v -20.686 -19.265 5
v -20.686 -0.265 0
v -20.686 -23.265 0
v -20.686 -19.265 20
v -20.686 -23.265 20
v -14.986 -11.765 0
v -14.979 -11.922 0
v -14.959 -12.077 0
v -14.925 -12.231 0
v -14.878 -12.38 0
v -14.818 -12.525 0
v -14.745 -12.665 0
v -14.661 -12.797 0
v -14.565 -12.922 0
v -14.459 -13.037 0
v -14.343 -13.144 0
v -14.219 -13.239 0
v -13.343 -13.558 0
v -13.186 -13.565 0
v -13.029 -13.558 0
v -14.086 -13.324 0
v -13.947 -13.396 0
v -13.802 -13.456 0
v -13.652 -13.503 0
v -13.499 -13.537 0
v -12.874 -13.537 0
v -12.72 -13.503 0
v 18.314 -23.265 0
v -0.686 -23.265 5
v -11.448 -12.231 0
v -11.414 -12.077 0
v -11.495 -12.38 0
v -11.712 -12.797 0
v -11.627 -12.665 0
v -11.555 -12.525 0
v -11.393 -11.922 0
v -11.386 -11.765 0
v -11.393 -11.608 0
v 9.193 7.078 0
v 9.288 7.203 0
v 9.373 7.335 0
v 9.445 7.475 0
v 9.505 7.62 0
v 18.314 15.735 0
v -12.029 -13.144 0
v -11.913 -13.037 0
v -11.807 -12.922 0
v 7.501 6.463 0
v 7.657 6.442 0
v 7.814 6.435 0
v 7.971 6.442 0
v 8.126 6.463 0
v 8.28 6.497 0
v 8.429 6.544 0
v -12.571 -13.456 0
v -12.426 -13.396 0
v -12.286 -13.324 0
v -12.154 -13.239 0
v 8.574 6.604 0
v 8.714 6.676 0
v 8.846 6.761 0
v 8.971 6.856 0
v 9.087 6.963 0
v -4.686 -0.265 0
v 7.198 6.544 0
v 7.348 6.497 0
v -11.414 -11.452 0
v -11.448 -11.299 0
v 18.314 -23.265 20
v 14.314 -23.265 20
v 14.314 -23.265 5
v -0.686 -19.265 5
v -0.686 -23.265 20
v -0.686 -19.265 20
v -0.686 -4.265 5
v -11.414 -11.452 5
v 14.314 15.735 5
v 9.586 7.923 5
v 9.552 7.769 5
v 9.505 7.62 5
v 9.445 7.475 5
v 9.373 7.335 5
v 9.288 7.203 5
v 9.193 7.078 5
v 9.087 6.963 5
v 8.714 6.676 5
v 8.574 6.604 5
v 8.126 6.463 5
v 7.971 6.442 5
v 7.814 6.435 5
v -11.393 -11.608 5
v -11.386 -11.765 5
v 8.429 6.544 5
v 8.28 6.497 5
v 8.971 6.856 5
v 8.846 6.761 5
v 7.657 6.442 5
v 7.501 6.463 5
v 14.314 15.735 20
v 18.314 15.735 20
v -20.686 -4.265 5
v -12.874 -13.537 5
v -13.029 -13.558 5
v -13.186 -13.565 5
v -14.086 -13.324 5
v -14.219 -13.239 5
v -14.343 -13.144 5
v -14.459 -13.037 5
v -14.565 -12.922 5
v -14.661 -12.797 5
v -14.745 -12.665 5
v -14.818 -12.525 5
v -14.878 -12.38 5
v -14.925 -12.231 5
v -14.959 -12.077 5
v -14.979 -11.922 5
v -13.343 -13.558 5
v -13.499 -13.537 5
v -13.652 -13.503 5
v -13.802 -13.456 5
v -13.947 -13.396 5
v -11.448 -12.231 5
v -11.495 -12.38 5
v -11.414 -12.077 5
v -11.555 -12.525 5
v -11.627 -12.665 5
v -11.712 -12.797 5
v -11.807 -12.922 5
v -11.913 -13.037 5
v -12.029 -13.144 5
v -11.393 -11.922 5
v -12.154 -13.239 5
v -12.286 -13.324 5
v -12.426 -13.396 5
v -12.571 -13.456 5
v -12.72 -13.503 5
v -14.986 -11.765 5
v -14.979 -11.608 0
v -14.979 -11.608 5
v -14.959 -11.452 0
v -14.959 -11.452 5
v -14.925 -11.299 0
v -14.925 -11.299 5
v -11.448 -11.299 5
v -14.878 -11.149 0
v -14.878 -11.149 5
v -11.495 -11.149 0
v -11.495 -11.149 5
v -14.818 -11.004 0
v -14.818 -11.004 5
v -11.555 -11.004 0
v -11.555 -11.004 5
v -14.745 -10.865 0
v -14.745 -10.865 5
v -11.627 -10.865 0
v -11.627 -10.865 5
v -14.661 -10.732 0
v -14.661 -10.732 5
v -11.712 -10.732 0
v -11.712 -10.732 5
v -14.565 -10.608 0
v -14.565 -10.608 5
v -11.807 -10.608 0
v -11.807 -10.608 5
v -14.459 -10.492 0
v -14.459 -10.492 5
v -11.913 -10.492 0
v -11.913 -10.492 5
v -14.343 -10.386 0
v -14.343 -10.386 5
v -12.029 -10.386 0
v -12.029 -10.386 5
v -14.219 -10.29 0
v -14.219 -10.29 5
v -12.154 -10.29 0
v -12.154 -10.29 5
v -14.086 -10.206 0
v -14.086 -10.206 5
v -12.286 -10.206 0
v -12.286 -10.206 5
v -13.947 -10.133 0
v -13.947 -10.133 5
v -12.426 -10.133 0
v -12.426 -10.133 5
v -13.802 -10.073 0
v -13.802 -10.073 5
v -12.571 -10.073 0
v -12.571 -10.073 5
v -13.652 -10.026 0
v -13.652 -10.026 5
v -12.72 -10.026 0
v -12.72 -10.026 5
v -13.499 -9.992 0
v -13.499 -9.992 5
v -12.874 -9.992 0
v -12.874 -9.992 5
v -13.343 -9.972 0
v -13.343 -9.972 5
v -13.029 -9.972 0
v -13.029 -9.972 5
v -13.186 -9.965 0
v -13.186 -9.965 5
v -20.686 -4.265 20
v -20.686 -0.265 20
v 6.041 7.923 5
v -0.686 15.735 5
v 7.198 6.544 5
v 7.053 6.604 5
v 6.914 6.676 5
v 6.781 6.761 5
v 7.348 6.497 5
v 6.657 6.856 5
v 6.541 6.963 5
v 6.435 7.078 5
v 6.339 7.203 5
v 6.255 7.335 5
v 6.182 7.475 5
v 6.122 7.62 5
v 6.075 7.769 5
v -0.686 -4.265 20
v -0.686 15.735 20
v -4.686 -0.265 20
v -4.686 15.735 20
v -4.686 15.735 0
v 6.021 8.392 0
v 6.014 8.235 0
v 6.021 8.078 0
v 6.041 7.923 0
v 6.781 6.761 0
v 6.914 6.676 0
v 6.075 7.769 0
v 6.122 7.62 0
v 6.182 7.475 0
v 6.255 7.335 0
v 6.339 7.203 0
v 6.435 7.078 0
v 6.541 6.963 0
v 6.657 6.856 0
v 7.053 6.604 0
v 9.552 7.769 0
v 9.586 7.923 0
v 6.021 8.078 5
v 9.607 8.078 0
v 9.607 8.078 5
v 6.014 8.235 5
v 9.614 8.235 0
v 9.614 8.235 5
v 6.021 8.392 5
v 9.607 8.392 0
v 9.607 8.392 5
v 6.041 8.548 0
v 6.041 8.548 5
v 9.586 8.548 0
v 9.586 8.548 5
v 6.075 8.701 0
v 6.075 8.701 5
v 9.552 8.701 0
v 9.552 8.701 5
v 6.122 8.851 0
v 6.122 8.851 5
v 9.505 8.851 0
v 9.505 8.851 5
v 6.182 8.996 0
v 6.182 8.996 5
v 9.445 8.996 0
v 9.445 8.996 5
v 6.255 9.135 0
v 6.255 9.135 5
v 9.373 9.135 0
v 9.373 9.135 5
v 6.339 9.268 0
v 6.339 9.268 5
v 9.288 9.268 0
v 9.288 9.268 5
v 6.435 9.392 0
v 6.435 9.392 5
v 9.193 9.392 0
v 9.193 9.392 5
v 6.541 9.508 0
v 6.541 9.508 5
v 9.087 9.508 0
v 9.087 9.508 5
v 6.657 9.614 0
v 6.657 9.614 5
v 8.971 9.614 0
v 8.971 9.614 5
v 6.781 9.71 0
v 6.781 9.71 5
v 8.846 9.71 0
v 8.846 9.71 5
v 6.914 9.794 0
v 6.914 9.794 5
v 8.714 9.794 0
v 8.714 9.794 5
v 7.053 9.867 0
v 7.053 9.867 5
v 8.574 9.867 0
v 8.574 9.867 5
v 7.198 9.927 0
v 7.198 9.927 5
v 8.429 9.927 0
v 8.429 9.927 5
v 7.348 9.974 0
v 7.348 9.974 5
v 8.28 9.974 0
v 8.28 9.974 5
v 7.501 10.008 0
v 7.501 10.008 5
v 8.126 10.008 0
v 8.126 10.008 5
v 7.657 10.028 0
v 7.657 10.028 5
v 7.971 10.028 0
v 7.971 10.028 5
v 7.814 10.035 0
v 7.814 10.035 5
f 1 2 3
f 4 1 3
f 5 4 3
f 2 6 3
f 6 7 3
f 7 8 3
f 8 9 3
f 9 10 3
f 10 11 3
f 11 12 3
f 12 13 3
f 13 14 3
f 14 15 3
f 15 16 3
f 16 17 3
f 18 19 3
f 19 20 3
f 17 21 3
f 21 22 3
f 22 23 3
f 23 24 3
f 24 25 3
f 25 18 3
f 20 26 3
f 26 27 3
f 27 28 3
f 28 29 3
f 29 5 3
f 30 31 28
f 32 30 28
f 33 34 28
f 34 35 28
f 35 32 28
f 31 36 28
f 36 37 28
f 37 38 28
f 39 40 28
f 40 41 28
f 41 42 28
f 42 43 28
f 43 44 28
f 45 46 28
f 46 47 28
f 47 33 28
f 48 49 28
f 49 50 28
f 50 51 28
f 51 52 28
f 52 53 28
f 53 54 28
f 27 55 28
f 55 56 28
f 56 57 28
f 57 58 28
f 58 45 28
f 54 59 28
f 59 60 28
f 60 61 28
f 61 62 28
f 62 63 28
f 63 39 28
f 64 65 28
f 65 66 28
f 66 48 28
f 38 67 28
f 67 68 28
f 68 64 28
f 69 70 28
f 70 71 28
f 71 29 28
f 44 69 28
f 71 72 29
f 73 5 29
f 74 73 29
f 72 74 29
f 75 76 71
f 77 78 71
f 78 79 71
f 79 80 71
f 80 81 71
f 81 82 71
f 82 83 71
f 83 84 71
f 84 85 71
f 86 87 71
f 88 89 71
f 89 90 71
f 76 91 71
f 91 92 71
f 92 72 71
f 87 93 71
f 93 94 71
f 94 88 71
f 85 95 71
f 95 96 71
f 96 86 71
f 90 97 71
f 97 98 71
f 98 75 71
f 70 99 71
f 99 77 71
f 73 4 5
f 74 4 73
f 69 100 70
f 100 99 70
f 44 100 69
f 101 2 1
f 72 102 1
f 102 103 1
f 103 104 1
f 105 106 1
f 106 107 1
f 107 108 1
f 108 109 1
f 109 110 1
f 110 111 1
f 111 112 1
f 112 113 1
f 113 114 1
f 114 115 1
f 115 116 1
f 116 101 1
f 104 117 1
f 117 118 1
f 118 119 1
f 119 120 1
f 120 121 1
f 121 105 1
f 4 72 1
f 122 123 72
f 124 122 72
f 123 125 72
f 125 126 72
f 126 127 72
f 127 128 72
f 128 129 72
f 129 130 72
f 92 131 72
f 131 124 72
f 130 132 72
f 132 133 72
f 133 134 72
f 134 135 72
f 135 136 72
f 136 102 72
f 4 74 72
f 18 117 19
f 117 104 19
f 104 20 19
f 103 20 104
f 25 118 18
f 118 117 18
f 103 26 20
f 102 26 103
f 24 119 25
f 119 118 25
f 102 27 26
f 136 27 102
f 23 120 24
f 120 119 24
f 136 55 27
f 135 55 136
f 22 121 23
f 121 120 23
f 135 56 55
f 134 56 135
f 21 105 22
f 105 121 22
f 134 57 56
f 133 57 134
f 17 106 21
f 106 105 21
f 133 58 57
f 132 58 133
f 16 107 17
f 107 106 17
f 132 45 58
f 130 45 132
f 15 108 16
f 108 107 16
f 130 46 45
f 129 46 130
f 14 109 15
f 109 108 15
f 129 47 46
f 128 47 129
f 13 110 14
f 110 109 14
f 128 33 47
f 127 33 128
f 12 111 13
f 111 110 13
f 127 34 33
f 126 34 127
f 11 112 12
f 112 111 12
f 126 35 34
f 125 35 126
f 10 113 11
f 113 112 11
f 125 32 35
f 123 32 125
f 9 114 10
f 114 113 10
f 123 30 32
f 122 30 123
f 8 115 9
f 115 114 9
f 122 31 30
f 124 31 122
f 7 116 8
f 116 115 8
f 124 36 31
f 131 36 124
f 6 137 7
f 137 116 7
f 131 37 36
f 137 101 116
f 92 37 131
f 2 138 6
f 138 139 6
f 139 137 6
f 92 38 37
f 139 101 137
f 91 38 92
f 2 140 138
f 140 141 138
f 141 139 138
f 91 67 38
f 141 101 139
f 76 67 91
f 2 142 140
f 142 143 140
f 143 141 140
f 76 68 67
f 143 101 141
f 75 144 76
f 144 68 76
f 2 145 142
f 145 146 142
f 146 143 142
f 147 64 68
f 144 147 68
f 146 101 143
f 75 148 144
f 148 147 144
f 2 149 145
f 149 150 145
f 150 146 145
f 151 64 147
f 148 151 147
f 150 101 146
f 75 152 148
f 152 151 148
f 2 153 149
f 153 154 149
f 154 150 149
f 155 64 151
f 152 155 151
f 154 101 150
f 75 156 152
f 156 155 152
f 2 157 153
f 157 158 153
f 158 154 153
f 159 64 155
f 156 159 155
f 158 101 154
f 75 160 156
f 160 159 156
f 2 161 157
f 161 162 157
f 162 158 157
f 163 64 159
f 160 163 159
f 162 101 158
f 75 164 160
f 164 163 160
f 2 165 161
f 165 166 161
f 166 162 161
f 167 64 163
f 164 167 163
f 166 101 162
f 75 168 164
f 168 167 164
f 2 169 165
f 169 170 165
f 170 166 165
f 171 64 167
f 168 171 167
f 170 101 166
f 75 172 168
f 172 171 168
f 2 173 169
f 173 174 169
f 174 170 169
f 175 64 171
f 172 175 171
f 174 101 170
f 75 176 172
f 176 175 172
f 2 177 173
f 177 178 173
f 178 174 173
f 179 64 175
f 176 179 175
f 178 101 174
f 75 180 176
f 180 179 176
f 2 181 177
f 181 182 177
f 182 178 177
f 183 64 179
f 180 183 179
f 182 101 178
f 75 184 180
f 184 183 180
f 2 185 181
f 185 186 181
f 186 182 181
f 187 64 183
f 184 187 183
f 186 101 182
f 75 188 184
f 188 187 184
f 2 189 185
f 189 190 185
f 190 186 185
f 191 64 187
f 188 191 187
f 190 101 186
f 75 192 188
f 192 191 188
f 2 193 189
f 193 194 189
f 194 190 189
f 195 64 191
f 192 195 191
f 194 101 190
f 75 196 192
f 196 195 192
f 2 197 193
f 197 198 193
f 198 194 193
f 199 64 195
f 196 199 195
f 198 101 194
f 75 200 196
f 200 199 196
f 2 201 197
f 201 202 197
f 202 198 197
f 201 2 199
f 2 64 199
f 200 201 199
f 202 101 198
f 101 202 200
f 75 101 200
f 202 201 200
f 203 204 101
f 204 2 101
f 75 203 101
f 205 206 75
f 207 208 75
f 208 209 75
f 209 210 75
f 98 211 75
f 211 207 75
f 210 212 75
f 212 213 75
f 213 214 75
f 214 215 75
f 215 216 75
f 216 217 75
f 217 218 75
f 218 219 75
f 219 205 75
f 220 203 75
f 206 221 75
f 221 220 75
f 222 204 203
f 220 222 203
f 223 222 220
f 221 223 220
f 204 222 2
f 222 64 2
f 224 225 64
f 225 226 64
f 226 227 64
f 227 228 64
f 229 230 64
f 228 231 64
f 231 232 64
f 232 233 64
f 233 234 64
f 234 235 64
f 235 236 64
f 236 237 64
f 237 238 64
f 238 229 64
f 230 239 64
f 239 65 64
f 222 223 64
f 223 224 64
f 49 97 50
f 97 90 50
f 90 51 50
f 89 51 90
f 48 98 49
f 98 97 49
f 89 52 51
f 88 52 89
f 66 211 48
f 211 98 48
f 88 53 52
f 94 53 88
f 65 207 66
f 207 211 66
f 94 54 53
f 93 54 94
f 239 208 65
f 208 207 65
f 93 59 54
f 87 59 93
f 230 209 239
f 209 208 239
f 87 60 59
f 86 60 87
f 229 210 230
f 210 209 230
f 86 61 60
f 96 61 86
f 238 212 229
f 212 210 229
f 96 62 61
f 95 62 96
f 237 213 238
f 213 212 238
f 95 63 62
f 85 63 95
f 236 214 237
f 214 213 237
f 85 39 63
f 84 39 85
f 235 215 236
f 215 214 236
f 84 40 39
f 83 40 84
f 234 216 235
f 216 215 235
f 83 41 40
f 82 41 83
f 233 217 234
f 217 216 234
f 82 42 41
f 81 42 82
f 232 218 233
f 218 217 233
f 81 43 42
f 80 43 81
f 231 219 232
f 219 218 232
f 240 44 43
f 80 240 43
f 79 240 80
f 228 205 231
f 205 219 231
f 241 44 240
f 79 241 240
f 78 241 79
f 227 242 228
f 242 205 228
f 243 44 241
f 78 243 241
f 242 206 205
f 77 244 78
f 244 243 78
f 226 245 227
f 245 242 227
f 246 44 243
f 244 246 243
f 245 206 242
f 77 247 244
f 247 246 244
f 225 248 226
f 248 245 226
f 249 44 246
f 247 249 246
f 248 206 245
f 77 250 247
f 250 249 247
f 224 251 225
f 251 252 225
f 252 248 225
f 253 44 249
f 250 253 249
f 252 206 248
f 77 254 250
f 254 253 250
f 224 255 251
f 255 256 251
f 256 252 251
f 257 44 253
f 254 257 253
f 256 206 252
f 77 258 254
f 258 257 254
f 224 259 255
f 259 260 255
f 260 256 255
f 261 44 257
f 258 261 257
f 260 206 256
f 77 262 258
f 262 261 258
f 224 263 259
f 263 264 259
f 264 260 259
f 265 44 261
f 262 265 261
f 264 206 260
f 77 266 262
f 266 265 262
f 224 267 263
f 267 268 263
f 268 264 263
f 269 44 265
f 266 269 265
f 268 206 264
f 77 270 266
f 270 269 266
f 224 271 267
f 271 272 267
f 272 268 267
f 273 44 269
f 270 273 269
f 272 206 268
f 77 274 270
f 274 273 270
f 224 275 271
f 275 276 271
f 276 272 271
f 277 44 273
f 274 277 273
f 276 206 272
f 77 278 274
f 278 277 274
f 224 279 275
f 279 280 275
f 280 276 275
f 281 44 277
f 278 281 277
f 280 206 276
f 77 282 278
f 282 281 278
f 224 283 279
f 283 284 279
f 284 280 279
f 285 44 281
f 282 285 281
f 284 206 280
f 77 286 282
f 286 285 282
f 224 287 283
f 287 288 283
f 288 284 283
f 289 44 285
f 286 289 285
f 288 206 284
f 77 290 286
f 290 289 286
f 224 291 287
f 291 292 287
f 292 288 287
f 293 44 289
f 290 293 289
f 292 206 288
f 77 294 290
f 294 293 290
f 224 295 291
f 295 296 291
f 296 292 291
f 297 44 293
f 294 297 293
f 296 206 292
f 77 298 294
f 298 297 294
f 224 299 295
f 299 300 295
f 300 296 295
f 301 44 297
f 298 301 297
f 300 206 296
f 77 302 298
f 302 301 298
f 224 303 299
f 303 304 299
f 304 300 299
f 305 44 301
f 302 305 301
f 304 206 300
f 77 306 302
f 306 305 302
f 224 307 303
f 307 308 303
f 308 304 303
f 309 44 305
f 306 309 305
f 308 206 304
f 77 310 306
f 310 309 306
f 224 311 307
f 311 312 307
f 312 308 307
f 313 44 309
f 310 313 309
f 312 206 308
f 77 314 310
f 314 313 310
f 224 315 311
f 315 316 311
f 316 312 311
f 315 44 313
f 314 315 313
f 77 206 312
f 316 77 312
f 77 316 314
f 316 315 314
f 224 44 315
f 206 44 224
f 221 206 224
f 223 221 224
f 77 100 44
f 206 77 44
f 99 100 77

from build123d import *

# Parameters (mm, degrees)
BOSS_EXTRUDE1_DEPTH = 5
BOSS_EXTRUDE2_DEPTH = 20
SKETCH4_W           = 35
SKETCH4_H           = 4
BOSS_EXTRUDE3_DEPTH = 20
SKETCH6_R           = 1.8
CUT_EXTRUDE3_DEPTH  = 6
SKETCH7_W           = 4
SKETCH7_H           = 39
BOSS_EXTRUDE4_DEPTH = 20
SKETCH8_W           = 15
SKETCH8_H           = 15
CUT_EXTRUDE4_DEPTH  = 40


with BuildPart() as part:
    # Sketch1 → Boss-Extrude1 (new body)
    with BuildSketch(Plane.XY):
        Polygon((-20.68627451, -4.264705882), (-0.68627451, -4.264705882), (-0.68627451, 15.735294118), (14.31372549, 15.735294118), (14.31372549, -4.264705882), (14.31372549, -19.264705882), (-20.68627451, -19.264705882), align=None)
    extrude(amount=BOSS_EXTRUDE1_DEPTH)

    # Sketch2 → Boss-Extrude2 (add)
    with BuildSketch(Plane(origin=(0, 0, 0), x_dir=(-1, 0, 0), z_dir=(0, 0, -1))):
        Polygon((0.68627451, 15.735294118), (4.68627451, 15.735294118), (4.68627451, -0.264705882), (6.079970528, -0.264705882), (20.68627451, -0.264705882), (20.68627451, -4.264705882), (0.68627451, -4.264705882), align=None)
    extrude(amount=-BOSS_EXTRUDE2_DEPTH)

    # Sketch4 → Boss-Extrude3 (add)
    with BuildSketch(Plane(origin=(0, 0, 0), x_dir=(-1, 0, 0), z_dir=(0, 0, -1))):
        with Locations((3.18627451, -21.264705882)):
            Rectangle(SKETCH4_W, SKETCH4_H)
    extrude(amount=-BOSS_EXTRUDE3_DEPTH)

    # Sketch6 → Cut-Extrude3 (cut, through all)
    with BuildSketch(Plane.XY.offset(5)):
        with Locations((7.81372549, 8.235294118)):
            Circle(SKETCH6_R)
        with Locations((-13.18627451, -11.764705882)):
            Circle(SKETCH6_R)
    extrude(amount=-CUT_EXTRUDE3_DEPTH, mode=Mode.SUBTRACT)

    # Sketch7 → Boss-Extrude4 (add)
    with BuildSketch(Plane(origin=(0, 0, 0), x_dir=(-1, 0, 0), z_dir=(0, 0, -1))):
        with Locations((-16.31372549, -3.764705882)):
            Rectangle(SKETCH7_W, SKETCH7_H)
    extrude(amount=-BOSS_EXTRUDE4_DEPTH)

    # Sketch8 → Cut-Extrude4 (cut, through all)
    with BuildSketch(Plane(origin=(0, 15.735294118, 0), x_dir=(1, 0, 0), z_dir=(0, 1, 0))):
        with Locations((6.81372549, -12.5)):
            Rectangle(SKETCH8_W, SKETCH8_H)
    extrude(amount=-CUT_EXTRUDE4_DEPTH, mode=Mode.SUBTRACT)


solid = part.part
